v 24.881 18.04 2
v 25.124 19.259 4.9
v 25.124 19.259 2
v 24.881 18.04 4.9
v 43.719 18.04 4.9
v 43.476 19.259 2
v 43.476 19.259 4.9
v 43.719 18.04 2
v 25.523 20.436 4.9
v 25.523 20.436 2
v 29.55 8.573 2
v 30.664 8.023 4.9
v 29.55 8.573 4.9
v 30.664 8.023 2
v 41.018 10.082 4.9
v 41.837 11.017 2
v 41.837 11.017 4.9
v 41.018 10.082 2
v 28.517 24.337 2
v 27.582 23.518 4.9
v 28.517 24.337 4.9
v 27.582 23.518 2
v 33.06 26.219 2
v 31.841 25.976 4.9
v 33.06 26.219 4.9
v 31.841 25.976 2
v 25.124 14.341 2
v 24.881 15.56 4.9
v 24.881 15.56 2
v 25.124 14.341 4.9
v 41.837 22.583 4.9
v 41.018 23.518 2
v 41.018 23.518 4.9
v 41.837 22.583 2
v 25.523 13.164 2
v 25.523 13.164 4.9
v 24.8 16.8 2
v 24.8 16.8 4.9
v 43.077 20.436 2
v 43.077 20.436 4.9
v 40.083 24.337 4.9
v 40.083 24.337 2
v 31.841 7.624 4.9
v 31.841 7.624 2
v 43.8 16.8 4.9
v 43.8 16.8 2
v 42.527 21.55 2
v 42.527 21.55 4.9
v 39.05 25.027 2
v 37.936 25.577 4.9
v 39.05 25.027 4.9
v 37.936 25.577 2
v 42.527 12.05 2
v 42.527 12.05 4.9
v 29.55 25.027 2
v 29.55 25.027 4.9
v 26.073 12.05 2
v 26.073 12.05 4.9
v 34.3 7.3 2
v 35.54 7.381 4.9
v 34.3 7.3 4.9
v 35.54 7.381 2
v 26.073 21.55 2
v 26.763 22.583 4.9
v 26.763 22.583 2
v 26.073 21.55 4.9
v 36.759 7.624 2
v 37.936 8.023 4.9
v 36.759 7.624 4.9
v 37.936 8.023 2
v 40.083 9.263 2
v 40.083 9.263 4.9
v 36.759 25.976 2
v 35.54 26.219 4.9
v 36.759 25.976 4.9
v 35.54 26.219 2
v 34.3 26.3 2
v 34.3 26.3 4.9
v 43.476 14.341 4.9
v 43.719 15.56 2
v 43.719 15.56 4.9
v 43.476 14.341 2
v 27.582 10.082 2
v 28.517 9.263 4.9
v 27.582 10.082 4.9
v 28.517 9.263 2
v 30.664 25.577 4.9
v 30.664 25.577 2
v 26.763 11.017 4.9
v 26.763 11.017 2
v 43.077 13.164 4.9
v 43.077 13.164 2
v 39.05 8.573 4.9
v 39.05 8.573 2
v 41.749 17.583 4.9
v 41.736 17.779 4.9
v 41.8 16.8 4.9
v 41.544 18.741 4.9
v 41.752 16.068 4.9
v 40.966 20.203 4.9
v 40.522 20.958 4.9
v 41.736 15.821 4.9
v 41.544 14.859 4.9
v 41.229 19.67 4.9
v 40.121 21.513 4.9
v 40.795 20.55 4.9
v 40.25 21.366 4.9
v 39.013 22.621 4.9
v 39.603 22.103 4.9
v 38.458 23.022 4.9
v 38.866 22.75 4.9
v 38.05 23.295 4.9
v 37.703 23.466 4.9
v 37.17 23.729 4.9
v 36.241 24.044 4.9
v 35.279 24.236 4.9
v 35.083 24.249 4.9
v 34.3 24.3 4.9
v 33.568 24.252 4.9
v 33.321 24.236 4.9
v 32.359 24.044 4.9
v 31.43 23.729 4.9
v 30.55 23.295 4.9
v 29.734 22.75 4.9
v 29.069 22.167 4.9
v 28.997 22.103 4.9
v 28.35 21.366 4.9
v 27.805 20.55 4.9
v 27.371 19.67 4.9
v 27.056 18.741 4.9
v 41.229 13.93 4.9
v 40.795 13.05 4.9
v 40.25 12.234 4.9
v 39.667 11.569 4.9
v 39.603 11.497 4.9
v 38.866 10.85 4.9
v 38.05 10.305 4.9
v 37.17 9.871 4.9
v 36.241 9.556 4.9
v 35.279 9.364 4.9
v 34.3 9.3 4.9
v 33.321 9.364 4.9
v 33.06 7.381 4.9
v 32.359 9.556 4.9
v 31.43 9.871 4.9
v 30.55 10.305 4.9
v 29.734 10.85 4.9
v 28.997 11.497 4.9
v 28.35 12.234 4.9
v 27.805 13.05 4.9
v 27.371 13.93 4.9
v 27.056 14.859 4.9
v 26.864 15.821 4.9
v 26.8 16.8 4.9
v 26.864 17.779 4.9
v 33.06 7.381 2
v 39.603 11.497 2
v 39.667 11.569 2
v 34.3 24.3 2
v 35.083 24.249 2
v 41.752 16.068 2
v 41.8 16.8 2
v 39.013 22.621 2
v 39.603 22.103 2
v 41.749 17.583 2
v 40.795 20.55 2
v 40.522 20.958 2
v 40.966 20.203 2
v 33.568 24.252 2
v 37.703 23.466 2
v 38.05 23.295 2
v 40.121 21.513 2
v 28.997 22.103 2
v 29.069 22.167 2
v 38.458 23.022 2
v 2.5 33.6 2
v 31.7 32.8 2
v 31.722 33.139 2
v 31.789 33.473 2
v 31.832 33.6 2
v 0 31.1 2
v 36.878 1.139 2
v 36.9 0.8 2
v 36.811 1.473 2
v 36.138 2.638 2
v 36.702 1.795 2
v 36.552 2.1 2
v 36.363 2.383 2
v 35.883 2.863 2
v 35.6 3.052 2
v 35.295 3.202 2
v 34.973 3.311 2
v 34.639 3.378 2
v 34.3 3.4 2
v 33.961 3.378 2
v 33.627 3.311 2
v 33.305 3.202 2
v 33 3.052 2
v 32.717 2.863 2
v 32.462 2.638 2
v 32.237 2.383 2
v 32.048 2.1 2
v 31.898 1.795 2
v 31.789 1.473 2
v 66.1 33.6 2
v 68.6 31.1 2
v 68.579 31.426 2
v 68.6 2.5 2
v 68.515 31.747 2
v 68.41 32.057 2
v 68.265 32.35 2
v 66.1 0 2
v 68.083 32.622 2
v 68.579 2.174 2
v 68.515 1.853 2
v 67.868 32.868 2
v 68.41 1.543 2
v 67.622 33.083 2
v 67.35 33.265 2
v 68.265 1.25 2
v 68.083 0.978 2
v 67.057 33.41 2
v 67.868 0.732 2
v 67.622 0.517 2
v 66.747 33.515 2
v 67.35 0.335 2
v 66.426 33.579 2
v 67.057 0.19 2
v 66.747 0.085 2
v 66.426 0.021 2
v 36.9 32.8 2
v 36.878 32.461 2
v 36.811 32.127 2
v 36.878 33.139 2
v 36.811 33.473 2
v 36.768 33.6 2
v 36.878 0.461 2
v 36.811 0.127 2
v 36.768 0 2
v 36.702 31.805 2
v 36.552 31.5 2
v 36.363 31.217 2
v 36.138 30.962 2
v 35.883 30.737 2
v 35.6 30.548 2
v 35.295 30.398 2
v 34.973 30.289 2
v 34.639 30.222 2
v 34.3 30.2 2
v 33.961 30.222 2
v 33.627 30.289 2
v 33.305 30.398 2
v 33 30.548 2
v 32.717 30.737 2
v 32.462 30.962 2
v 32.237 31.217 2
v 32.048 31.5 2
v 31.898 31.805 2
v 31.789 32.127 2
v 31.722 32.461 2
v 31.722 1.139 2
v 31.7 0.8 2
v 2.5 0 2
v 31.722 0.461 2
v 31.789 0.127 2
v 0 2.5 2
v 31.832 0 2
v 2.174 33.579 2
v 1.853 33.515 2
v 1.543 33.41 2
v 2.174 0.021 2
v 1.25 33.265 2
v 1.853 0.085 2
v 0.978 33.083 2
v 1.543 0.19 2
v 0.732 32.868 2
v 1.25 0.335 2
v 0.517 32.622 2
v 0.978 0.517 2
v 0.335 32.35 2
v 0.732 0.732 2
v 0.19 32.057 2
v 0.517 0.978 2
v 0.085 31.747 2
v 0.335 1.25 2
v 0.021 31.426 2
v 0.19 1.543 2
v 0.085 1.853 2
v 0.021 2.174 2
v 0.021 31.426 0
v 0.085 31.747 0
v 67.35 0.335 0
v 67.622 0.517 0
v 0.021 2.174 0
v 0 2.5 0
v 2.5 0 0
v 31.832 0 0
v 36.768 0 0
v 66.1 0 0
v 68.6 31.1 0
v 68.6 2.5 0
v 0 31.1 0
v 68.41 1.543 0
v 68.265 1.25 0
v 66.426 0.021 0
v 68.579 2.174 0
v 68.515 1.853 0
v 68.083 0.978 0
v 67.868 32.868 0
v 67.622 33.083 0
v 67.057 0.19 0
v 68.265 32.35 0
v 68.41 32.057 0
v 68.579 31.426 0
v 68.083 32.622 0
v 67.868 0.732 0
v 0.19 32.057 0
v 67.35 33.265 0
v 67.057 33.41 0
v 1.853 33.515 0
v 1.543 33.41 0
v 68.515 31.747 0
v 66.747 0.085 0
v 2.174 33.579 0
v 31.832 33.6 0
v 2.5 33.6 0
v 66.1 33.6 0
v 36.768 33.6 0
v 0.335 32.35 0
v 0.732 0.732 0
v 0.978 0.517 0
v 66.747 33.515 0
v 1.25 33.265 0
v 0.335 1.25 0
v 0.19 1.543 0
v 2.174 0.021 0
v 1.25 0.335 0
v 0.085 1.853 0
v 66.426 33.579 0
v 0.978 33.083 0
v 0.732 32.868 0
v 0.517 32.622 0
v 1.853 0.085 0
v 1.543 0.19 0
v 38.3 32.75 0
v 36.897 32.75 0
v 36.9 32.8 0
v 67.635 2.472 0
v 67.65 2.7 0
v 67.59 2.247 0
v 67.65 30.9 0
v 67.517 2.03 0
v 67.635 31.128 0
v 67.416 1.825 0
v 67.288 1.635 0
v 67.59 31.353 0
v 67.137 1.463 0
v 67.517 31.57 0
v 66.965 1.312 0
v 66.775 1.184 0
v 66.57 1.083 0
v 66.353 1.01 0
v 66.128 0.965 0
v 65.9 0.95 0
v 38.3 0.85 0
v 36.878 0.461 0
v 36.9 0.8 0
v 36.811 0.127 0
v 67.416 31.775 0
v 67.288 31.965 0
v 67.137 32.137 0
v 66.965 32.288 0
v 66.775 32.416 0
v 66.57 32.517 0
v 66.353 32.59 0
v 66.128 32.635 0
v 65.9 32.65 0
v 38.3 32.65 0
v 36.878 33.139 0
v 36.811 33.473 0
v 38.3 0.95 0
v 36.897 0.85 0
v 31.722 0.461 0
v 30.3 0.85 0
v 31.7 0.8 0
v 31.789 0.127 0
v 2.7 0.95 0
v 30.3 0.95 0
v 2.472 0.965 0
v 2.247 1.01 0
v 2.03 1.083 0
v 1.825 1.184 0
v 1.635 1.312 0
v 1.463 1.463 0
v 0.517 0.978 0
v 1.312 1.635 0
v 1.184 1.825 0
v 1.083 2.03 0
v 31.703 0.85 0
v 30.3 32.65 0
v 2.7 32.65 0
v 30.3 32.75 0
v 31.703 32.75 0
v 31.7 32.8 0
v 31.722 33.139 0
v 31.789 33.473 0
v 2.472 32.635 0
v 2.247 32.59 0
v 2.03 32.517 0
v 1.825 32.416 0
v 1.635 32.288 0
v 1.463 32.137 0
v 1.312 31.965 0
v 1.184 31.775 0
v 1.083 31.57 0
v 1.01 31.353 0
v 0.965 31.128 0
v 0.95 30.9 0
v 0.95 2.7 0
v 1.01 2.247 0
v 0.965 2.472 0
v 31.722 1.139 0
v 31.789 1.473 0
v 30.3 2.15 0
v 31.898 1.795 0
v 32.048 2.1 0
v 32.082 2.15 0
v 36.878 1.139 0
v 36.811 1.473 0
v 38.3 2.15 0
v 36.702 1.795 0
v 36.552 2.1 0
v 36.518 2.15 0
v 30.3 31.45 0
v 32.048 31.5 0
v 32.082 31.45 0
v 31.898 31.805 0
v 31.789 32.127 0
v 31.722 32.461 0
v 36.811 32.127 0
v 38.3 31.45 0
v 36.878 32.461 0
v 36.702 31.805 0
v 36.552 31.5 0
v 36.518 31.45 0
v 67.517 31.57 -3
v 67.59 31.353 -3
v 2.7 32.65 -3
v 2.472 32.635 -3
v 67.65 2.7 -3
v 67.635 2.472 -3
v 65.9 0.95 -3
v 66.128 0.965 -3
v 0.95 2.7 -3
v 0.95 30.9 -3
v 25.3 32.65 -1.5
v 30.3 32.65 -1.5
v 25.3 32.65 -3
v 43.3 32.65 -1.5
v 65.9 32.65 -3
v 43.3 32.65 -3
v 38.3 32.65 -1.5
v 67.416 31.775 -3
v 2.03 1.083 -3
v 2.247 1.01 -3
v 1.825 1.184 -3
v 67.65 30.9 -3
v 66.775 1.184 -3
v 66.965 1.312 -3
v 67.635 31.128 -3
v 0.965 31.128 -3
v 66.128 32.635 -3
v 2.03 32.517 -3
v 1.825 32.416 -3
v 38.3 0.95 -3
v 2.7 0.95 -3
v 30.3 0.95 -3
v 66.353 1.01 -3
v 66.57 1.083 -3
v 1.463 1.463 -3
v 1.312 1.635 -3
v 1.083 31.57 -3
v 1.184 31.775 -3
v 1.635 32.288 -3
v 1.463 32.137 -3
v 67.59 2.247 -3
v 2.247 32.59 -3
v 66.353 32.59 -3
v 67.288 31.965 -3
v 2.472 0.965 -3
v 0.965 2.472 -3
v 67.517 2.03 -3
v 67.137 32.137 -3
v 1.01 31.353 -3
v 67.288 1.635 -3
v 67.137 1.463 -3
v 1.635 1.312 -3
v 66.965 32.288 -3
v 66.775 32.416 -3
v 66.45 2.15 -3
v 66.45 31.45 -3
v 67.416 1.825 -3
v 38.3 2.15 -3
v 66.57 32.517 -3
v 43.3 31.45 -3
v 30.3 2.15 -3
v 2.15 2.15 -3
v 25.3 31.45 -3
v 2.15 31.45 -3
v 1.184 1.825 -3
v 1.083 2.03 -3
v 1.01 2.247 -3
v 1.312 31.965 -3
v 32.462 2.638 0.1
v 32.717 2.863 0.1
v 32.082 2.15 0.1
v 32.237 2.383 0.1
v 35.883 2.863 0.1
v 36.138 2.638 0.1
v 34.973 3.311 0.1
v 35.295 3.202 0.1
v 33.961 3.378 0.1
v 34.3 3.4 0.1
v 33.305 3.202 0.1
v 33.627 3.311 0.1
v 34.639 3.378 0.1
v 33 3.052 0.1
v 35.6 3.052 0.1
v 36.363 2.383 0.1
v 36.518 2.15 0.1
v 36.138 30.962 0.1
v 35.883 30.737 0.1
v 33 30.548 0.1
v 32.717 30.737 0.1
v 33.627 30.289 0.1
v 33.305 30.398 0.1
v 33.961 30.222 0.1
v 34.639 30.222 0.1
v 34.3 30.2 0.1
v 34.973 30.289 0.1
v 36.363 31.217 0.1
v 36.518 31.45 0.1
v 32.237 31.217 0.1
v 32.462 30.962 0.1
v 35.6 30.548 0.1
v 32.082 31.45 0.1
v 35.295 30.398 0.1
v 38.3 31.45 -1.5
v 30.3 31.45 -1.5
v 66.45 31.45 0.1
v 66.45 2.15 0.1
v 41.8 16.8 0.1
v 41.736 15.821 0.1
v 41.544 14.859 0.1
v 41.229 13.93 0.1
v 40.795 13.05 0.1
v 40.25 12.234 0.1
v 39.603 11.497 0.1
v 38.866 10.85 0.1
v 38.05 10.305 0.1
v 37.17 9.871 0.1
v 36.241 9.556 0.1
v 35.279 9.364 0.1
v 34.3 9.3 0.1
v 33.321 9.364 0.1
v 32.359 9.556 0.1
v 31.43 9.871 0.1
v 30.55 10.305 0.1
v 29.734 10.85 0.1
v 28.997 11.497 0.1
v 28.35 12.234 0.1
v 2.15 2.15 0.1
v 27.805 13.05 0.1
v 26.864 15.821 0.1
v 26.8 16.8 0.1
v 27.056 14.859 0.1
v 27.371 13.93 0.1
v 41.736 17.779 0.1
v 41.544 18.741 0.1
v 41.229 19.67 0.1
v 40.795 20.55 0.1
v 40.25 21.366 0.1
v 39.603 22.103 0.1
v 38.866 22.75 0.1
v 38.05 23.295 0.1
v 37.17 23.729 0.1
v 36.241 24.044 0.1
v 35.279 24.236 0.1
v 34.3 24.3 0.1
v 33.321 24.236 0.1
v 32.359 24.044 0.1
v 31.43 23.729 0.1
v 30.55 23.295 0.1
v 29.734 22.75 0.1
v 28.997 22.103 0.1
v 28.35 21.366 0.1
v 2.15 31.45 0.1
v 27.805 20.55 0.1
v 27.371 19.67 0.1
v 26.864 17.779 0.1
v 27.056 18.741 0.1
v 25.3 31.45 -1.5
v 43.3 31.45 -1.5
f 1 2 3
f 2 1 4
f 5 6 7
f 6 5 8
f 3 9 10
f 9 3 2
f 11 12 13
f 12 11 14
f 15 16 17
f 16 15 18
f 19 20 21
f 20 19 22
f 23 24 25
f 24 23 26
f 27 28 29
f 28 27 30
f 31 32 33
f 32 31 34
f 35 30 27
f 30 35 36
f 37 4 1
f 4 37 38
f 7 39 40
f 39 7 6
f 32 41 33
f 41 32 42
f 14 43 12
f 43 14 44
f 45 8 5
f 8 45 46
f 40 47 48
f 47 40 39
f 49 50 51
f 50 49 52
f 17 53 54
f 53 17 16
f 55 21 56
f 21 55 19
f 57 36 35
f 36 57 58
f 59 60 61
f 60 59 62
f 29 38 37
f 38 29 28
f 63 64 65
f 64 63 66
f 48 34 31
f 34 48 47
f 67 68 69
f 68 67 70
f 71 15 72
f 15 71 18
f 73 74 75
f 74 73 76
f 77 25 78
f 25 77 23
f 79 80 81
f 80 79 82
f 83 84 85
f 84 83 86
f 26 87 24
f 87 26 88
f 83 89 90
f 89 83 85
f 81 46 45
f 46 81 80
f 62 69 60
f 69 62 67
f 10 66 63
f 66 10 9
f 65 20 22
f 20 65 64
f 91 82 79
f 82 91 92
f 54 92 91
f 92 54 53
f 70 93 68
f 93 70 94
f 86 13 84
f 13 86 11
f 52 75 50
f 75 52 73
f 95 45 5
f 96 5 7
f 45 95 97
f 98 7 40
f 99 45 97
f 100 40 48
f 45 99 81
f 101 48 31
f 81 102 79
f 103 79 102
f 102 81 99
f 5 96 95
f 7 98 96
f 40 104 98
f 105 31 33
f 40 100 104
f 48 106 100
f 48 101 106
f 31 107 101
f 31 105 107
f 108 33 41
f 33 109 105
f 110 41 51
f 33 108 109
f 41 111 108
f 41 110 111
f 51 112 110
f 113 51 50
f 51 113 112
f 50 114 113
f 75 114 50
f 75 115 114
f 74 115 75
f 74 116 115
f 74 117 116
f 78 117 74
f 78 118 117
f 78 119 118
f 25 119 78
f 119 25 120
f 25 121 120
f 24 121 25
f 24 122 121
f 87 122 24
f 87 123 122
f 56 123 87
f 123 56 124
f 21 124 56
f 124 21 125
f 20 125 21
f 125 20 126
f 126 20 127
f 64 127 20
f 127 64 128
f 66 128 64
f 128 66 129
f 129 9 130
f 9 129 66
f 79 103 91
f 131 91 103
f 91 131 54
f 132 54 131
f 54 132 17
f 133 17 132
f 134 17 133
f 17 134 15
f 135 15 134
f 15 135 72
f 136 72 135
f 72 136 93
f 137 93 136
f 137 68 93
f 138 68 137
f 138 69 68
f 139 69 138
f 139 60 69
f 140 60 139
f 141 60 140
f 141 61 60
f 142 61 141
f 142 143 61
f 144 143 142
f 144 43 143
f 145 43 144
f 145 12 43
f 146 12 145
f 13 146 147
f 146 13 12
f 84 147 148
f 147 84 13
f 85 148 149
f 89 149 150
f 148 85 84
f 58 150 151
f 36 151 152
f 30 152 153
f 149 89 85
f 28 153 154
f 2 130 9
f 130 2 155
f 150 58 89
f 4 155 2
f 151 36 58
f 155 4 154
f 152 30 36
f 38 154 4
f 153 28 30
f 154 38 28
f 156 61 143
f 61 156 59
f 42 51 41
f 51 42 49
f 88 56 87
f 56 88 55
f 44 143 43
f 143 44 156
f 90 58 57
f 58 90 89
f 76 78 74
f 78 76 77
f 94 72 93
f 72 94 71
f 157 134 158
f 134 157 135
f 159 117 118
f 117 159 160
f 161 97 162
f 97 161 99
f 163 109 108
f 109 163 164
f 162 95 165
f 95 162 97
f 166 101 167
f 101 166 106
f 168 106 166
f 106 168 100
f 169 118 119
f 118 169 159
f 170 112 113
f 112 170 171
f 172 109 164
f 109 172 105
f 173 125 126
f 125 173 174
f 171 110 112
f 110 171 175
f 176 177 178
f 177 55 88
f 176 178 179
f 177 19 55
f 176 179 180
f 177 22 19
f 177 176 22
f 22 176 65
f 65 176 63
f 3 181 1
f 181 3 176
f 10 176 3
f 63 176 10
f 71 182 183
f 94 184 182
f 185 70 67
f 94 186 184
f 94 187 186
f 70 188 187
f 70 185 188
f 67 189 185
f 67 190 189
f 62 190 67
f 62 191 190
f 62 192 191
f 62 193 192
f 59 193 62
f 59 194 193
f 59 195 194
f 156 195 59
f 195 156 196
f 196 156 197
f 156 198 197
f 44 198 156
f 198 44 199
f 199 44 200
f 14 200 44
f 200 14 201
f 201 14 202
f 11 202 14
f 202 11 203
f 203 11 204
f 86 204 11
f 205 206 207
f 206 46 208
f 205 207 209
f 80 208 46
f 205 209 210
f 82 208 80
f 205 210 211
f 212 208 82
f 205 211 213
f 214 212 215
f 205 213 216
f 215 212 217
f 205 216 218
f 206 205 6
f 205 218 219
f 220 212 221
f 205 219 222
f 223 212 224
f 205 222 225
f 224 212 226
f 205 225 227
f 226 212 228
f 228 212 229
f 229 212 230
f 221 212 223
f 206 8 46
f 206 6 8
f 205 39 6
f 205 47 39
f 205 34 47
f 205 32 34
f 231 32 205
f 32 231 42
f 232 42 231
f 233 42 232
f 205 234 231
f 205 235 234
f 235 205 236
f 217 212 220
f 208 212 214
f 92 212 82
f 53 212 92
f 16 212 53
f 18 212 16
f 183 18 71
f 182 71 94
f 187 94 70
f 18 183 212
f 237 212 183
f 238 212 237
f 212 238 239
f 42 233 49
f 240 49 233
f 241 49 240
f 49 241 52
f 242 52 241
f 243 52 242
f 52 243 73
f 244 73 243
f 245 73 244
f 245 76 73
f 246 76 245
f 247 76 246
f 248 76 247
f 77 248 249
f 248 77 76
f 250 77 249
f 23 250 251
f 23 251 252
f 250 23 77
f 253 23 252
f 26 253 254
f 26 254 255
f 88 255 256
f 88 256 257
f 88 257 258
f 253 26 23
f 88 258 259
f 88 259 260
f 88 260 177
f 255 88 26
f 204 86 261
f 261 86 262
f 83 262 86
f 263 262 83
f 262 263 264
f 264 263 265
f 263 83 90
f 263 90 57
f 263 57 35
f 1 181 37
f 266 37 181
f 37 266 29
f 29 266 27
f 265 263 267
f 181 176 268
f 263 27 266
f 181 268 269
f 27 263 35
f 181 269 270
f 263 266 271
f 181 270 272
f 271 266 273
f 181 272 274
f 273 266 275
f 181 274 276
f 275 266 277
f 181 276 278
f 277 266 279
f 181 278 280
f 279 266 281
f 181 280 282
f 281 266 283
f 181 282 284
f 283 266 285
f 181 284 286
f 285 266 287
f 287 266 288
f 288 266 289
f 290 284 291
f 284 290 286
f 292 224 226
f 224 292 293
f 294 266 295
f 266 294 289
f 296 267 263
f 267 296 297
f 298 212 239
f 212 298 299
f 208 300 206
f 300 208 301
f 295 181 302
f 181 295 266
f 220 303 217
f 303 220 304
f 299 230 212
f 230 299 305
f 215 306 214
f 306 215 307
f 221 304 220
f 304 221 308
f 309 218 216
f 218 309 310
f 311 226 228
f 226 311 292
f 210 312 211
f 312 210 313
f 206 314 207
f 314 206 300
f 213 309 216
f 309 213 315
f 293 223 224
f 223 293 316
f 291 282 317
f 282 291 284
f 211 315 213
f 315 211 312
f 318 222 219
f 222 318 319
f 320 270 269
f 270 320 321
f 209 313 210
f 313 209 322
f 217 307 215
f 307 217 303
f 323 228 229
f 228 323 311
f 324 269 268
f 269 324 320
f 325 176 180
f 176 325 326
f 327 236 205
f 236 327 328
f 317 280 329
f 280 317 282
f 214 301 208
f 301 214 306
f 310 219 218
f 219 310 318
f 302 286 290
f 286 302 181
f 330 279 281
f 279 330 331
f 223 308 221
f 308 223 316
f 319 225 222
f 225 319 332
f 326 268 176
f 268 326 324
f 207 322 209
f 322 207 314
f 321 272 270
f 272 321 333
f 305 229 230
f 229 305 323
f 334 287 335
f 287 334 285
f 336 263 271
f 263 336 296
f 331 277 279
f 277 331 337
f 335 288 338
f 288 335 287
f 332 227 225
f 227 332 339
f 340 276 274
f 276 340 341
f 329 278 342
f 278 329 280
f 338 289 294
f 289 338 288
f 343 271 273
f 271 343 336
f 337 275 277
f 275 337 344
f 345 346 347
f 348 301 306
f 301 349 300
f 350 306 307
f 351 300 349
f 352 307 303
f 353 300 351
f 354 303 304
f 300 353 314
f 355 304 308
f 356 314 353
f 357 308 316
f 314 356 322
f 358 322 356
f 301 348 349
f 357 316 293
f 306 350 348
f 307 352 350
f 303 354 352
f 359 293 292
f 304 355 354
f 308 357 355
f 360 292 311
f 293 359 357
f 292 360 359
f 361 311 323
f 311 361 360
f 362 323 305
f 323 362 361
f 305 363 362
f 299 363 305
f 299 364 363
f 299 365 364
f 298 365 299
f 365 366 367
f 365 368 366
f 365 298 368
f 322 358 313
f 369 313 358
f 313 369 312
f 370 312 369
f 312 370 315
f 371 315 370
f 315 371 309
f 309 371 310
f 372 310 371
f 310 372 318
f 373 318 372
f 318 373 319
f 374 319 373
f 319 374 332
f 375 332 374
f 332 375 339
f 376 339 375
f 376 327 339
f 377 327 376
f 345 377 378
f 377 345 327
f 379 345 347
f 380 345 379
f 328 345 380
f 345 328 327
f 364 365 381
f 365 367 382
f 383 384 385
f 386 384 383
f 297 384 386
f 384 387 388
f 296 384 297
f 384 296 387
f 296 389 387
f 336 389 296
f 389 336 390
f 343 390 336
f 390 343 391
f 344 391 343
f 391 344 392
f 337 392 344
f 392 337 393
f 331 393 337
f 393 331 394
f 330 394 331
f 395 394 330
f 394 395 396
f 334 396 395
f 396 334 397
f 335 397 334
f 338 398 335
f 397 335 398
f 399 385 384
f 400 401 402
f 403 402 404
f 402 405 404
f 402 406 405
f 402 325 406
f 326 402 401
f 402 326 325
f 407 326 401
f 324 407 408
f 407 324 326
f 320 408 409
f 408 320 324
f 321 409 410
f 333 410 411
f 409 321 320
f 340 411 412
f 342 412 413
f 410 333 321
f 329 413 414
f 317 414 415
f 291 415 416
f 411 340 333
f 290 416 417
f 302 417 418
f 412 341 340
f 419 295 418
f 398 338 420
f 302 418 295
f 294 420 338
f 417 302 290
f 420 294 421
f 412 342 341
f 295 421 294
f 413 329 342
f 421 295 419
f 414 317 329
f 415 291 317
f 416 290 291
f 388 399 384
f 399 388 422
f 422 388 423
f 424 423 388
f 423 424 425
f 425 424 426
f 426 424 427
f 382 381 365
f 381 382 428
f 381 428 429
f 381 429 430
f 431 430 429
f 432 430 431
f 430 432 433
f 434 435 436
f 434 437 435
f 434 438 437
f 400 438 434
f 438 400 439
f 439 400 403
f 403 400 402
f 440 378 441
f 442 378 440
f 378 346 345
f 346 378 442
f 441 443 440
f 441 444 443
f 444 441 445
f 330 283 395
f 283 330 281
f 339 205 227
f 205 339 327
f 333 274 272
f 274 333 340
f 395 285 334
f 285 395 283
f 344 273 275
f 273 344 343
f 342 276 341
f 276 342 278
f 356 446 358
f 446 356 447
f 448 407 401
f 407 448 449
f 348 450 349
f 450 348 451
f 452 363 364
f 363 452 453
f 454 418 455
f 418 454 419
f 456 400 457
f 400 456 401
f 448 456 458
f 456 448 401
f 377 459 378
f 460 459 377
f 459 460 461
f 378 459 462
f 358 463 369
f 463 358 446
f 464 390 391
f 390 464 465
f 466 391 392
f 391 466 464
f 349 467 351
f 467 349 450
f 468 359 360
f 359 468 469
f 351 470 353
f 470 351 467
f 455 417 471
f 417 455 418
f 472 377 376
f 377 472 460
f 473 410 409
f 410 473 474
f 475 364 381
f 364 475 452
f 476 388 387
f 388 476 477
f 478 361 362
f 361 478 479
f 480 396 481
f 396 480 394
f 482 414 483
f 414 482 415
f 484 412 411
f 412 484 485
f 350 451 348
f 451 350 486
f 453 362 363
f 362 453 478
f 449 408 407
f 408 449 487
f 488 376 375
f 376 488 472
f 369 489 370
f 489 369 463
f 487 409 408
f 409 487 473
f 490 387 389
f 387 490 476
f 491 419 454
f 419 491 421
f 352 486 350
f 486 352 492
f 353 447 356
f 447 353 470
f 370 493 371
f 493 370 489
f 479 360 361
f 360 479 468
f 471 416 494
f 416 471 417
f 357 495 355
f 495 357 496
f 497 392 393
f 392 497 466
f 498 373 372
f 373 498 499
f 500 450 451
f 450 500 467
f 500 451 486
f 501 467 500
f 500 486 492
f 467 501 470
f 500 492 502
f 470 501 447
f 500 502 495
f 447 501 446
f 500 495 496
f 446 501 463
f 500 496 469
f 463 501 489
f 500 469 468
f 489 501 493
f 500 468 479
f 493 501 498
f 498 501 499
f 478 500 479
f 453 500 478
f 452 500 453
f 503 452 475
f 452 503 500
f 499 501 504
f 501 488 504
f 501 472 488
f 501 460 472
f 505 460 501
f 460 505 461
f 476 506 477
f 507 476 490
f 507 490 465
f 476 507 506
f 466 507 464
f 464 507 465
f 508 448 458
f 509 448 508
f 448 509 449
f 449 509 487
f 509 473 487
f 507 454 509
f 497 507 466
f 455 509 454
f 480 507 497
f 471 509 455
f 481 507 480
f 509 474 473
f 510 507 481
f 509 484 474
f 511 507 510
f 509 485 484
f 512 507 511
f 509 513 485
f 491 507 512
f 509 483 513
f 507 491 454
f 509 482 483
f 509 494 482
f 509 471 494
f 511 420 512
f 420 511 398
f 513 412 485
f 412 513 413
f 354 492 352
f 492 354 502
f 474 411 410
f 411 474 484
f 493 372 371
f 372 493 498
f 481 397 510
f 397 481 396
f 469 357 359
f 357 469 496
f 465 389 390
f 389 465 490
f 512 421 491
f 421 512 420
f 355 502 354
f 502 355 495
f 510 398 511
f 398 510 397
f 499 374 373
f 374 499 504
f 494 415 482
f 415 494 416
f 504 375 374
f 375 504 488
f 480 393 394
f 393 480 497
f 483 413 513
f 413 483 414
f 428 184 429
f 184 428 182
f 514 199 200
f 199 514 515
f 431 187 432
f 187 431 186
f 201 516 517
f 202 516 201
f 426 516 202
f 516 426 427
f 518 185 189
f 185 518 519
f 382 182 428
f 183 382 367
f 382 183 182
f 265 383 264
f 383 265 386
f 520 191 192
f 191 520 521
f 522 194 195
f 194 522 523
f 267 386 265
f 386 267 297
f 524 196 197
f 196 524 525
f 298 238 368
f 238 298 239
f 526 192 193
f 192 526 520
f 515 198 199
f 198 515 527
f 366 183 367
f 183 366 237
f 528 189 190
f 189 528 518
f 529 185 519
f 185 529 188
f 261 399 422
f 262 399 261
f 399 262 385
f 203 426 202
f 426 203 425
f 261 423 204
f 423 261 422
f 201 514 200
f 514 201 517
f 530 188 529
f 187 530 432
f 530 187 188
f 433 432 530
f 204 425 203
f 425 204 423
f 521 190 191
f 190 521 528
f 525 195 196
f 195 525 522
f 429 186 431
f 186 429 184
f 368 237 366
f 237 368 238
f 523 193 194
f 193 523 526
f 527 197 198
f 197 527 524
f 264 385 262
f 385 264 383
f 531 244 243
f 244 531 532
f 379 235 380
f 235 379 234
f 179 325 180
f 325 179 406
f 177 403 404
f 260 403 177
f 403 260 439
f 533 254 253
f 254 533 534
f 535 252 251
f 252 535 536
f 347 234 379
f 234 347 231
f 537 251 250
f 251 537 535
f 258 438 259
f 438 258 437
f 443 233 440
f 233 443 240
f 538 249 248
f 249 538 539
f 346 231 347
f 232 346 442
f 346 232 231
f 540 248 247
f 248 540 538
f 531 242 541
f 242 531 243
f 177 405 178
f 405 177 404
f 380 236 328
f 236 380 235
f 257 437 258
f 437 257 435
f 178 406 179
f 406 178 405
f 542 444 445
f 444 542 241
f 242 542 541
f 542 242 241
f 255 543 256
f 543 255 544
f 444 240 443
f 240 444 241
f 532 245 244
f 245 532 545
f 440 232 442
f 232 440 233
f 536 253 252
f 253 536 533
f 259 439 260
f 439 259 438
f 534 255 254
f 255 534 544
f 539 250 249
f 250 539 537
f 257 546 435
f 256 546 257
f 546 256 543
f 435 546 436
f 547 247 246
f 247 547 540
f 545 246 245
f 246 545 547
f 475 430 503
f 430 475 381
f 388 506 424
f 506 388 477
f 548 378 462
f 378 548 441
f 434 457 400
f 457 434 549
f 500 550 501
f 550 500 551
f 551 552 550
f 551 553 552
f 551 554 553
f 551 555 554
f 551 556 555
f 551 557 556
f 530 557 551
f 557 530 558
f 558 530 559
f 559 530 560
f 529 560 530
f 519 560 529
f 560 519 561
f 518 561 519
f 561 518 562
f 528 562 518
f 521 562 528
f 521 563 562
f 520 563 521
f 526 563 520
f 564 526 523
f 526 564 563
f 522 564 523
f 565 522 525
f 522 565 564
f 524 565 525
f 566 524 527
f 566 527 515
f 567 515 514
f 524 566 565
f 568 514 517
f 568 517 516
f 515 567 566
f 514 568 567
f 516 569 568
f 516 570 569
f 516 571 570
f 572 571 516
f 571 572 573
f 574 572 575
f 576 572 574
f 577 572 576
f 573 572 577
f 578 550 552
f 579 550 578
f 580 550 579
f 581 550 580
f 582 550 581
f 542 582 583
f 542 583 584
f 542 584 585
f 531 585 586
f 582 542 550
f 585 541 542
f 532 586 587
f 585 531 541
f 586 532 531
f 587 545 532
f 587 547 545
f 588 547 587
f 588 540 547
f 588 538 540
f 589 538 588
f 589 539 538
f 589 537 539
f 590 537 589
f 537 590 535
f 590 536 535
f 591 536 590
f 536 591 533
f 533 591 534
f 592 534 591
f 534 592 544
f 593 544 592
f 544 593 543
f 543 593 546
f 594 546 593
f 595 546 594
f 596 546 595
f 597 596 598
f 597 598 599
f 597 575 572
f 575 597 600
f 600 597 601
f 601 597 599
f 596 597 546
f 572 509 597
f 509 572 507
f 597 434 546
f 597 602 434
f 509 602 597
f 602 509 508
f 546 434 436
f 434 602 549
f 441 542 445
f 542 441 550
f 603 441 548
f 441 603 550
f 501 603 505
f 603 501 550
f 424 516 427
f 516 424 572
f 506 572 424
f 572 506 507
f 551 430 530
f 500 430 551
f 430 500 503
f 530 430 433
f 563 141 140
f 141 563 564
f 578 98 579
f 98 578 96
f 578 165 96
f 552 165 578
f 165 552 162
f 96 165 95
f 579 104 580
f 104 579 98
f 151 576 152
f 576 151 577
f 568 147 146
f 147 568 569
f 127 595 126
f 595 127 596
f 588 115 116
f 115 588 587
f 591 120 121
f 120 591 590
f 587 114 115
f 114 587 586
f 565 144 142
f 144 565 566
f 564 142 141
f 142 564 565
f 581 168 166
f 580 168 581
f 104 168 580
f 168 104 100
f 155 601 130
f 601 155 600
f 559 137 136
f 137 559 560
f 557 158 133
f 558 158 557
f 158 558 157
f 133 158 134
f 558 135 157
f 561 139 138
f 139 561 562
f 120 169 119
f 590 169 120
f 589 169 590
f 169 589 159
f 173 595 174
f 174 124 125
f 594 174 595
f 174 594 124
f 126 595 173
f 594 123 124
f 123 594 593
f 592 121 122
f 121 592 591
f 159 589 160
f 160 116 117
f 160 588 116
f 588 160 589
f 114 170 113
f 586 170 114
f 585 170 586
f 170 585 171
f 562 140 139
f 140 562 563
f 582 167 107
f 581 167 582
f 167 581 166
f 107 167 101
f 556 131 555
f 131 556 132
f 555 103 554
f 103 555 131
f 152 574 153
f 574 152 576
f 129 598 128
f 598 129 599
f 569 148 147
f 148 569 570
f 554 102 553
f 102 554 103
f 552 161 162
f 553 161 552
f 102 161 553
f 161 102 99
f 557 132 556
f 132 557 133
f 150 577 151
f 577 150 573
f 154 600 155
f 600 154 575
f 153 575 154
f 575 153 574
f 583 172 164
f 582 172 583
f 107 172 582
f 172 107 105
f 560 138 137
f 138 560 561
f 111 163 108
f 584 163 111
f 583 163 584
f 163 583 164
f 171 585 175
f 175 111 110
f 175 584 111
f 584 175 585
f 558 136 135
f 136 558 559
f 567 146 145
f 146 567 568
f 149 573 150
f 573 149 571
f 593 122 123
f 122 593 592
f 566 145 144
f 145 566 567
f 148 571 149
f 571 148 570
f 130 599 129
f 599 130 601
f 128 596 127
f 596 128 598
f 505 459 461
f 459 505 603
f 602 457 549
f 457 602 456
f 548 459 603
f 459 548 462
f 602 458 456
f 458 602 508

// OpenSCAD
/*
 * AADongle Camera Unit — Lid
 *
 * Rounded rectangle cap that sits INTO the body's stepped rim.
 * Small bezel ring around the lens hole — smoothly connected to
 * the lid surface, not floating. IR LED holes flank the bezel.
 *
 * The lens pokes up through the lid from the camera mounted
 * inside the body. The bezel protects the lens edges.
 */

/* ============================================================
 *  DIMENSIONS — must match body
 * ============================================================ */

radxa_w = 65;  radxa_d = 30;
wall = 1.5;  r = 2.5;  tol = 0.3;  fn = 48;

iw = radxa_w + tol*2;
id = radxa_d + tol*2;
sw = iw + wall*2;
sd = id + wall*2;

// Lid geometry
step       = 3;       // how deep lid sits into body
step_tol   = 0.2;     // clearance for fit
step_wall  = 1.2;     // step wall thickness
top_thick  = 2;       // lid plate thickness (solid)

// Lens
lens_od    = 14;
lens_hole  = lens_od + 1;  // 15mm bore

// Bezel — small ring, smoothly joined to lid top
bezel_od   = lens_hole + 4; // 19mm — just enough to protect lens
bezel_h    = 3;              // 3mm rise above lid surface
bezel_fillet = 1;            // smooth transition at base

// IR LEDs
ir_d = 5.2;  ir_gap = 16;

// CSI ribbon slot
csi_w = 18;  csi_h = 1.5;

// Vents
vw = 1.5;  vl = 8;  vn = 3;

/* ============================================================
 *  MODULES
 * ============================================================ */

// Rounded rectangle — XY rounded, flat top/bottom
module rrect(w, d, h, cr) {
    hull() {
        for (x = [cr, w-cr])
            for (y = [cr, d-cr])
                translate([x, y, 0])
                    cylinder(r=cr, h=h, $fn=fn);
    }
}

// Bezel ring with fillet at base (smooth transition to lid surface)
module bezel(od, id, h, fillet) {
    union() {
        // Main ring
        difference() {
            cylinder(d=od, h=h, $fn=fn);
            translate([0, 0, -0.1])
                cylinder(d=id, h=h + 0.2, $fn=fn);
        }
        // Fillet at base — torus section for smooth transition
        difference() {
            rotate_extrude($fn=fn)
                translate([od/2 - fillet, 0, 0])
                    circle(r=fillet, $fn=fn/2);
            // Cut below Z=0
            translate([-(od+4)/2, -(od+4)/2, -od])
                cube([od+4, od+4, od]);
            // Cut inner bore
            translate([0, 0, -0.1])
                cylinder(d=id, h=fillet + 0.2, $fn=fn);
        }
    }
}

// Vent slots
module lid_vents(h, w) {
    sp = h / (vn+1);
    for (i = [1:vn])
        translate([(w-vl)/2, -0.1, i*sp - vw/2])
            cube([vl, step_wall + 0.2, vw]);
}

/* ============================================================
 *  ASSEMBLY
 * ============================================================ */

module lid() {
    cx = sw/2;
    cy = sd/2;

    // Step dimensions (part that drops into body)
    stw = iw + wall - step_tol*2;    // step outer width
    std = id + wall - step_tol*2;    // step outer depth

    difference() {
        union() {
            // === TOP PLATE === (rounded rectangle, matches body profile)
            rrect(sw, sd, top_thick, r);

            // === BEZEL RING === (on top of plate, centered)
            translate([cx, cy, top_thick - 0.1])
                bezel(bezel_od, lens_hole, bezel_h, bezel_fillet);

            // === STEP WALLS === (drop into body)
            // Outer step shell (rounded rect, hanging below)
            translate([(sw - stw)/2, (sd - std)/2, -step])
                rrect(stw, std, step + 0.1, r - wall/2);
        }

        // Hollow out step interior (leave only walls)
        translate([(sw - stw)/2 + step_wall,
                   (sd - std)/2 + step_wall,
                   -step - 0.1])
            cube([stw - step_wall*2,
                  std - step_wall*2,
                  step + 0.2]);

        // === LENS HOLE === (through everything)
        translate([cx, cy, -step - 0.1])
            cylinder(d=lens_hole, h=top_thick + step + bezel_h + bezel_fillet + 1,
                     $fn=fn);

        // === IR LED HOLES === (through lid plate)
        for (sy = [-1, 1])
            translate([cx, cy + sy*ir_gap, -step - 0.1])
                cylinder(d=ir_d, h=top_thick + step + 1, $fn=fn);

        // === CSI RIBBON SLOT === (back step wall)
        translate([cx - csi_w/2,
                   (sd + std)/2 - step_wall - 0.1,
                   -step - 0.1])
            cube([csi_w, step_wall + 0.2, csi_h + 0.1]);

        // === VENT SLOTS === (on step walls, both long sides)
        translate([(sw-stw)/2, (sd-std)/2, -step])
            lid_vents(step, stw);
        translate([(sw-stw)/2, (sd+std)/2 - step_wall, -step])
            lid_vents(step, stw);
    }
}

lid();
